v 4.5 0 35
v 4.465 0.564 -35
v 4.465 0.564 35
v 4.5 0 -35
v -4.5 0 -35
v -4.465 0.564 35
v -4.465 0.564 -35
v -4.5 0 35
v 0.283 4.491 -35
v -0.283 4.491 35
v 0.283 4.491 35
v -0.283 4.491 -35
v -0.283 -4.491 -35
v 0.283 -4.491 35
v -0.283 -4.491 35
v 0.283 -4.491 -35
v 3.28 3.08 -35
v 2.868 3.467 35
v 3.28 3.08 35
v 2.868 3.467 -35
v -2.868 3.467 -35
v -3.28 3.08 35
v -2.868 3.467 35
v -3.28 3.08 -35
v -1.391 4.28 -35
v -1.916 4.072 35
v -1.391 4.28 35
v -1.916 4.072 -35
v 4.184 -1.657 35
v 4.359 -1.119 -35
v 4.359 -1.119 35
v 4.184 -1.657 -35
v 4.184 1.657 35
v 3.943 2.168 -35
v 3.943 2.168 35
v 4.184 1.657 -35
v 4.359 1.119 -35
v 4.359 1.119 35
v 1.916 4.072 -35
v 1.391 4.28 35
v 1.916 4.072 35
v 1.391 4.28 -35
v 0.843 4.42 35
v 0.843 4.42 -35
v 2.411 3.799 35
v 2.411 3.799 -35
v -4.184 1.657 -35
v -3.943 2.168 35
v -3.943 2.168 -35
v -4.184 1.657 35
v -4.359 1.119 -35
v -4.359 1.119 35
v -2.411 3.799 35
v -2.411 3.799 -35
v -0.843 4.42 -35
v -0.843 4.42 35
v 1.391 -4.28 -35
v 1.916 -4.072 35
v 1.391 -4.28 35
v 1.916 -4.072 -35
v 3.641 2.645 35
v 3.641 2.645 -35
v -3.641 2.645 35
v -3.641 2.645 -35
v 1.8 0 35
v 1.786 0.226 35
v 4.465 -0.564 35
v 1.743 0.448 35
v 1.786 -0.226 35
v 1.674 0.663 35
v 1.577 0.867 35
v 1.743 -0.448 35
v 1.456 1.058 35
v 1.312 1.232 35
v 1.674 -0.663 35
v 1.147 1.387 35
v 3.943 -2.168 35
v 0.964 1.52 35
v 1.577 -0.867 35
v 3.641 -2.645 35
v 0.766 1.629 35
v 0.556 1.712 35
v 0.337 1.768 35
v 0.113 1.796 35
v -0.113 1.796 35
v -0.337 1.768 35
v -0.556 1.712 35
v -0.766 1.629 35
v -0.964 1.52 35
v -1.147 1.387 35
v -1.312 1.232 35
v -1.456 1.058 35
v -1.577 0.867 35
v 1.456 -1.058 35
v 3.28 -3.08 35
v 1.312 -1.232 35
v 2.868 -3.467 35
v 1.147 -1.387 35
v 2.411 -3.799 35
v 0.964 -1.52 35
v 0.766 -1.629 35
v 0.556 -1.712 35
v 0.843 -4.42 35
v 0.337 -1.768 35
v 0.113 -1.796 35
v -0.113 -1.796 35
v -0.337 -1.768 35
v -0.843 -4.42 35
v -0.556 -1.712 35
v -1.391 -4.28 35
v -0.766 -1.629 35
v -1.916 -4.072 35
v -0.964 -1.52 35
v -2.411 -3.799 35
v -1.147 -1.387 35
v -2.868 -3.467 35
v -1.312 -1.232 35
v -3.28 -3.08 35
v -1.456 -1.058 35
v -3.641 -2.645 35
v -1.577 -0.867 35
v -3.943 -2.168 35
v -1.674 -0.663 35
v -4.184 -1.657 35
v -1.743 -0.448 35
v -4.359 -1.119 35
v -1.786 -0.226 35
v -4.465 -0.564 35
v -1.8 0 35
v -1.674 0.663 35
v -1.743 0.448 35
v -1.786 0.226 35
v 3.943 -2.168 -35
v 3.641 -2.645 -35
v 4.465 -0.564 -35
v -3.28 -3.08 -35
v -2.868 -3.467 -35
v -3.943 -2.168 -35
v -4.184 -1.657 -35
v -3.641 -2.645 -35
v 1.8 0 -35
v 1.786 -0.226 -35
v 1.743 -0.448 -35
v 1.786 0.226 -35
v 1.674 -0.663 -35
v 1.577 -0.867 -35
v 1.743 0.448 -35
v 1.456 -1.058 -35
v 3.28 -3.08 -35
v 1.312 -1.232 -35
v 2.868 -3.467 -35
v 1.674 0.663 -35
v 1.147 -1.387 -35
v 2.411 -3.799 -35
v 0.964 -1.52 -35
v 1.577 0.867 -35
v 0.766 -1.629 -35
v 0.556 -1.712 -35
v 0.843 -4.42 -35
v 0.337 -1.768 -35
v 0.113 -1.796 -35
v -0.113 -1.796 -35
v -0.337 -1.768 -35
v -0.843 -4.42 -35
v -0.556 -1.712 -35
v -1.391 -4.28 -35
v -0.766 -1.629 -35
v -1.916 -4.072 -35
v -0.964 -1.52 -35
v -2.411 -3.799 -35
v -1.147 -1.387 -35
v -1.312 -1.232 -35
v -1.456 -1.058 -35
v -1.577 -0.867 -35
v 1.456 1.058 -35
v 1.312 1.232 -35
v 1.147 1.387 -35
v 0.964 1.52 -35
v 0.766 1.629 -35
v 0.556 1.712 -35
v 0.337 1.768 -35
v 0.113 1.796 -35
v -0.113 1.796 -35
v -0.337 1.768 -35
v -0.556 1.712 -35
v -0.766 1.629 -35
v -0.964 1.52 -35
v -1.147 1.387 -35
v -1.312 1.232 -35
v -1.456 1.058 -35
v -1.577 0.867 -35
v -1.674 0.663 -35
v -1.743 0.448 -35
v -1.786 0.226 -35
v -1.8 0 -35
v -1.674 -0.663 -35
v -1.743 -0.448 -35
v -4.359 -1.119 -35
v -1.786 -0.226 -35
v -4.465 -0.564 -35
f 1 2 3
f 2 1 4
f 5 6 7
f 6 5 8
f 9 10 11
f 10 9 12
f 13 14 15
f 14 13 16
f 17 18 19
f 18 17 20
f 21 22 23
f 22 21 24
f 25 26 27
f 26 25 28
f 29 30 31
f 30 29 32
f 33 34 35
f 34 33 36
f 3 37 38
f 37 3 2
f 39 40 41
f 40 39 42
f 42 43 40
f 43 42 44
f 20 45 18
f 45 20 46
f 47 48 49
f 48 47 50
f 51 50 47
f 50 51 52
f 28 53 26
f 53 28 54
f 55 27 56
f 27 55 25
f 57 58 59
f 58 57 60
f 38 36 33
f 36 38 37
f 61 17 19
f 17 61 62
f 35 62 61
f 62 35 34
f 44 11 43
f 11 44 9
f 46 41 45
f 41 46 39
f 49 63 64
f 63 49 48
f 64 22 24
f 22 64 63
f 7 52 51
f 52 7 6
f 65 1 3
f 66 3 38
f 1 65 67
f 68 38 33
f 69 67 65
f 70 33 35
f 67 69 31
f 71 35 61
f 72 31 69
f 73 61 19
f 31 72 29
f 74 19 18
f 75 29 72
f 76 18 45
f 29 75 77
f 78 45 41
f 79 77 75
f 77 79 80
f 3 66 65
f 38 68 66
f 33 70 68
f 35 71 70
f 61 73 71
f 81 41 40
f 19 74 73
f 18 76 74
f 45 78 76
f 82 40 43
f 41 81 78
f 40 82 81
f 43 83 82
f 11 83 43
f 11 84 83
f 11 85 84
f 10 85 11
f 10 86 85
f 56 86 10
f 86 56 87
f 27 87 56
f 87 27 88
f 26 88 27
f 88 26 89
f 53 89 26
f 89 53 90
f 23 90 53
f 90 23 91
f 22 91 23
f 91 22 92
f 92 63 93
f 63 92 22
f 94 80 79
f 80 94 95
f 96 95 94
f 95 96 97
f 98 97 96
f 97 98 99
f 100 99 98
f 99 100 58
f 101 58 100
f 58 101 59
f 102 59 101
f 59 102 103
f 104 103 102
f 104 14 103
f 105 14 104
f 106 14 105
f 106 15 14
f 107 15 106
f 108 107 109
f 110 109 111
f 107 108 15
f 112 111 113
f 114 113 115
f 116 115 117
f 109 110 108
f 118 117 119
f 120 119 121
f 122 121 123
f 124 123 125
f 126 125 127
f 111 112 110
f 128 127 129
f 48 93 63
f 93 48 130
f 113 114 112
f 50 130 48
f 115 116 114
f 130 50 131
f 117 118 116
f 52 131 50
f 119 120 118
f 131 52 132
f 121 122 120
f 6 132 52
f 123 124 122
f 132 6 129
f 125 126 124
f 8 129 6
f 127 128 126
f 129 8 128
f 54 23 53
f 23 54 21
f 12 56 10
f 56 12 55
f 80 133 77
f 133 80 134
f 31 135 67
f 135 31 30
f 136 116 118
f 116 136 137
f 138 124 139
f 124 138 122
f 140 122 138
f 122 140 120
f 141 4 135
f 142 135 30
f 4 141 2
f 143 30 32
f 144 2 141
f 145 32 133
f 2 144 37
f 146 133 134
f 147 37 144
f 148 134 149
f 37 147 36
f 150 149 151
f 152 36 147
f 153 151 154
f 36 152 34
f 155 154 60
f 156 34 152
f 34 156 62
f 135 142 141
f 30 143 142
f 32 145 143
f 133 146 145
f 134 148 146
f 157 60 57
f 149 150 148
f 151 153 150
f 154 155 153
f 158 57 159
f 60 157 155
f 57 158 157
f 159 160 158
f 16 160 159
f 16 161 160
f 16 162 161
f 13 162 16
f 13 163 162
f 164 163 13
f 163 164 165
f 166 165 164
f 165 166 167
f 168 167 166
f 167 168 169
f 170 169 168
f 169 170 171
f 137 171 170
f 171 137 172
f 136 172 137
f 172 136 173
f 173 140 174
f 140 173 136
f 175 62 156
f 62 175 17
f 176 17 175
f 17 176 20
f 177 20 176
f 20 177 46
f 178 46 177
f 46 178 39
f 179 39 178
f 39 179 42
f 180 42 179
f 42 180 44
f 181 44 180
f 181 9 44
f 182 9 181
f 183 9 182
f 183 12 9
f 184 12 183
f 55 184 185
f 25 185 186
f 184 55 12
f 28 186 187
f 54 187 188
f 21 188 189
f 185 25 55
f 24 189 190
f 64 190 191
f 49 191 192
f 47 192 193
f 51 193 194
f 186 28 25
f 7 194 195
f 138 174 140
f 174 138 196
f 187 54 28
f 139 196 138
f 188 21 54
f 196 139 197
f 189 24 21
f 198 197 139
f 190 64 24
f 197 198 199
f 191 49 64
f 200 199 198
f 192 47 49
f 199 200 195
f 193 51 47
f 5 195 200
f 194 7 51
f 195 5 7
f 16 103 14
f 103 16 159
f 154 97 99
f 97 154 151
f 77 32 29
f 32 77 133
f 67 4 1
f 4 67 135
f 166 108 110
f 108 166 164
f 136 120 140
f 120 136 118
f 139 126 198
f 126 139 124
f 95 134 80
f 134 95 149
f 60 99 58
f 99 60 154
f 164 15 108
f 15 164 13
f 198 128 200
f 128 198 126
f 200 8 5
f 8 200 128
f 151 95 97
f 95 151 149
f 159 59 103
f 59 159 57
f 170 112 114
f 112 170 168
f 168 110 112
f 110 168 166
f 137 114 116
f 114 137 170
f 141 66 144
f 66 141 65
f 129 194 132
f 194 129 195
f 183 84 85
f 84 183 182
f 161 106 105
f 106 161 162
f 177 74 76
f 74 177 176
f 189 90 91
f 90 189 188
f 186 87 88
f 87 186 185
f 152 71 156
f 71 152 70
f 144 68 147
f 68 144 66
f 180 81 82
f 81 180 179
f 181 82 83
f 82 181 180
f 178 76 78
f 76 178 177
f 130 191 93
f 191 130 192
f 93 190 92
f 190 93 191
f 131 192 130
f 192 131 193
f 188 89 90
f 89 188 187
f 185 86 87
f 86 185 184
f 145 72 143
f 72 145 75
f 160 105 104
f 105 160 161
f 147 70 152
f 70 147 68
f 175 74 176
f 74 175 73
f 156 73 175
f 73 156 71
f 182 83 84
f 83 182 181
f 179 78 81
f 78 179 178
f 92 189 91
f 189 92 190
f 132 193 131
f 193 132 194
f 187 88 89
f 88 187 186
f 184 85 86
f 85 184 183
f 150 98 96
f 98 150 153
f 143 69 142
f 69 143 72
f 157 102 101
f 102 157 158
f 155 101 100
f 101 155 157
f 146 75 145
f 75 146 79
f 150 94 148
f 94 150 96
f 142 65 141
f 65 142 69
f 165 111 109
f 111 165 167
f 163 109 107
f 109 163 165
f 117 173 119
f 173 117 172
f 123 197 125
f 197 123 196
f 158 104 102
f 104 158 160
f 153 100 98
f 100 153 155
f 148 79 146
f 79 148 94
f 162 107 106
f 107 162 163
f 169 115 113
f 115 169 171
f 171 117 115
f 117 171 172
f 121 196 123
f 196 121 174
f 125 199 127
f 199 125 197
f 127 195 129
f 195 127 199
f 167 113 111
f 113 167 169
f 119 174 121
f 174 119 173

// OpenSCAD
$fn = 50;


difference() {
	union() {
		translate(v = [0, 0, -35.0000000000]) {
			cylinder(h = 70, r = 4.5000000000);
		}
	}
	union() {
		translate(v = [0, 0, -100.0000000000]) {
			cylinder(h = 200, r = 1.8000000000);
		}
	}
}
